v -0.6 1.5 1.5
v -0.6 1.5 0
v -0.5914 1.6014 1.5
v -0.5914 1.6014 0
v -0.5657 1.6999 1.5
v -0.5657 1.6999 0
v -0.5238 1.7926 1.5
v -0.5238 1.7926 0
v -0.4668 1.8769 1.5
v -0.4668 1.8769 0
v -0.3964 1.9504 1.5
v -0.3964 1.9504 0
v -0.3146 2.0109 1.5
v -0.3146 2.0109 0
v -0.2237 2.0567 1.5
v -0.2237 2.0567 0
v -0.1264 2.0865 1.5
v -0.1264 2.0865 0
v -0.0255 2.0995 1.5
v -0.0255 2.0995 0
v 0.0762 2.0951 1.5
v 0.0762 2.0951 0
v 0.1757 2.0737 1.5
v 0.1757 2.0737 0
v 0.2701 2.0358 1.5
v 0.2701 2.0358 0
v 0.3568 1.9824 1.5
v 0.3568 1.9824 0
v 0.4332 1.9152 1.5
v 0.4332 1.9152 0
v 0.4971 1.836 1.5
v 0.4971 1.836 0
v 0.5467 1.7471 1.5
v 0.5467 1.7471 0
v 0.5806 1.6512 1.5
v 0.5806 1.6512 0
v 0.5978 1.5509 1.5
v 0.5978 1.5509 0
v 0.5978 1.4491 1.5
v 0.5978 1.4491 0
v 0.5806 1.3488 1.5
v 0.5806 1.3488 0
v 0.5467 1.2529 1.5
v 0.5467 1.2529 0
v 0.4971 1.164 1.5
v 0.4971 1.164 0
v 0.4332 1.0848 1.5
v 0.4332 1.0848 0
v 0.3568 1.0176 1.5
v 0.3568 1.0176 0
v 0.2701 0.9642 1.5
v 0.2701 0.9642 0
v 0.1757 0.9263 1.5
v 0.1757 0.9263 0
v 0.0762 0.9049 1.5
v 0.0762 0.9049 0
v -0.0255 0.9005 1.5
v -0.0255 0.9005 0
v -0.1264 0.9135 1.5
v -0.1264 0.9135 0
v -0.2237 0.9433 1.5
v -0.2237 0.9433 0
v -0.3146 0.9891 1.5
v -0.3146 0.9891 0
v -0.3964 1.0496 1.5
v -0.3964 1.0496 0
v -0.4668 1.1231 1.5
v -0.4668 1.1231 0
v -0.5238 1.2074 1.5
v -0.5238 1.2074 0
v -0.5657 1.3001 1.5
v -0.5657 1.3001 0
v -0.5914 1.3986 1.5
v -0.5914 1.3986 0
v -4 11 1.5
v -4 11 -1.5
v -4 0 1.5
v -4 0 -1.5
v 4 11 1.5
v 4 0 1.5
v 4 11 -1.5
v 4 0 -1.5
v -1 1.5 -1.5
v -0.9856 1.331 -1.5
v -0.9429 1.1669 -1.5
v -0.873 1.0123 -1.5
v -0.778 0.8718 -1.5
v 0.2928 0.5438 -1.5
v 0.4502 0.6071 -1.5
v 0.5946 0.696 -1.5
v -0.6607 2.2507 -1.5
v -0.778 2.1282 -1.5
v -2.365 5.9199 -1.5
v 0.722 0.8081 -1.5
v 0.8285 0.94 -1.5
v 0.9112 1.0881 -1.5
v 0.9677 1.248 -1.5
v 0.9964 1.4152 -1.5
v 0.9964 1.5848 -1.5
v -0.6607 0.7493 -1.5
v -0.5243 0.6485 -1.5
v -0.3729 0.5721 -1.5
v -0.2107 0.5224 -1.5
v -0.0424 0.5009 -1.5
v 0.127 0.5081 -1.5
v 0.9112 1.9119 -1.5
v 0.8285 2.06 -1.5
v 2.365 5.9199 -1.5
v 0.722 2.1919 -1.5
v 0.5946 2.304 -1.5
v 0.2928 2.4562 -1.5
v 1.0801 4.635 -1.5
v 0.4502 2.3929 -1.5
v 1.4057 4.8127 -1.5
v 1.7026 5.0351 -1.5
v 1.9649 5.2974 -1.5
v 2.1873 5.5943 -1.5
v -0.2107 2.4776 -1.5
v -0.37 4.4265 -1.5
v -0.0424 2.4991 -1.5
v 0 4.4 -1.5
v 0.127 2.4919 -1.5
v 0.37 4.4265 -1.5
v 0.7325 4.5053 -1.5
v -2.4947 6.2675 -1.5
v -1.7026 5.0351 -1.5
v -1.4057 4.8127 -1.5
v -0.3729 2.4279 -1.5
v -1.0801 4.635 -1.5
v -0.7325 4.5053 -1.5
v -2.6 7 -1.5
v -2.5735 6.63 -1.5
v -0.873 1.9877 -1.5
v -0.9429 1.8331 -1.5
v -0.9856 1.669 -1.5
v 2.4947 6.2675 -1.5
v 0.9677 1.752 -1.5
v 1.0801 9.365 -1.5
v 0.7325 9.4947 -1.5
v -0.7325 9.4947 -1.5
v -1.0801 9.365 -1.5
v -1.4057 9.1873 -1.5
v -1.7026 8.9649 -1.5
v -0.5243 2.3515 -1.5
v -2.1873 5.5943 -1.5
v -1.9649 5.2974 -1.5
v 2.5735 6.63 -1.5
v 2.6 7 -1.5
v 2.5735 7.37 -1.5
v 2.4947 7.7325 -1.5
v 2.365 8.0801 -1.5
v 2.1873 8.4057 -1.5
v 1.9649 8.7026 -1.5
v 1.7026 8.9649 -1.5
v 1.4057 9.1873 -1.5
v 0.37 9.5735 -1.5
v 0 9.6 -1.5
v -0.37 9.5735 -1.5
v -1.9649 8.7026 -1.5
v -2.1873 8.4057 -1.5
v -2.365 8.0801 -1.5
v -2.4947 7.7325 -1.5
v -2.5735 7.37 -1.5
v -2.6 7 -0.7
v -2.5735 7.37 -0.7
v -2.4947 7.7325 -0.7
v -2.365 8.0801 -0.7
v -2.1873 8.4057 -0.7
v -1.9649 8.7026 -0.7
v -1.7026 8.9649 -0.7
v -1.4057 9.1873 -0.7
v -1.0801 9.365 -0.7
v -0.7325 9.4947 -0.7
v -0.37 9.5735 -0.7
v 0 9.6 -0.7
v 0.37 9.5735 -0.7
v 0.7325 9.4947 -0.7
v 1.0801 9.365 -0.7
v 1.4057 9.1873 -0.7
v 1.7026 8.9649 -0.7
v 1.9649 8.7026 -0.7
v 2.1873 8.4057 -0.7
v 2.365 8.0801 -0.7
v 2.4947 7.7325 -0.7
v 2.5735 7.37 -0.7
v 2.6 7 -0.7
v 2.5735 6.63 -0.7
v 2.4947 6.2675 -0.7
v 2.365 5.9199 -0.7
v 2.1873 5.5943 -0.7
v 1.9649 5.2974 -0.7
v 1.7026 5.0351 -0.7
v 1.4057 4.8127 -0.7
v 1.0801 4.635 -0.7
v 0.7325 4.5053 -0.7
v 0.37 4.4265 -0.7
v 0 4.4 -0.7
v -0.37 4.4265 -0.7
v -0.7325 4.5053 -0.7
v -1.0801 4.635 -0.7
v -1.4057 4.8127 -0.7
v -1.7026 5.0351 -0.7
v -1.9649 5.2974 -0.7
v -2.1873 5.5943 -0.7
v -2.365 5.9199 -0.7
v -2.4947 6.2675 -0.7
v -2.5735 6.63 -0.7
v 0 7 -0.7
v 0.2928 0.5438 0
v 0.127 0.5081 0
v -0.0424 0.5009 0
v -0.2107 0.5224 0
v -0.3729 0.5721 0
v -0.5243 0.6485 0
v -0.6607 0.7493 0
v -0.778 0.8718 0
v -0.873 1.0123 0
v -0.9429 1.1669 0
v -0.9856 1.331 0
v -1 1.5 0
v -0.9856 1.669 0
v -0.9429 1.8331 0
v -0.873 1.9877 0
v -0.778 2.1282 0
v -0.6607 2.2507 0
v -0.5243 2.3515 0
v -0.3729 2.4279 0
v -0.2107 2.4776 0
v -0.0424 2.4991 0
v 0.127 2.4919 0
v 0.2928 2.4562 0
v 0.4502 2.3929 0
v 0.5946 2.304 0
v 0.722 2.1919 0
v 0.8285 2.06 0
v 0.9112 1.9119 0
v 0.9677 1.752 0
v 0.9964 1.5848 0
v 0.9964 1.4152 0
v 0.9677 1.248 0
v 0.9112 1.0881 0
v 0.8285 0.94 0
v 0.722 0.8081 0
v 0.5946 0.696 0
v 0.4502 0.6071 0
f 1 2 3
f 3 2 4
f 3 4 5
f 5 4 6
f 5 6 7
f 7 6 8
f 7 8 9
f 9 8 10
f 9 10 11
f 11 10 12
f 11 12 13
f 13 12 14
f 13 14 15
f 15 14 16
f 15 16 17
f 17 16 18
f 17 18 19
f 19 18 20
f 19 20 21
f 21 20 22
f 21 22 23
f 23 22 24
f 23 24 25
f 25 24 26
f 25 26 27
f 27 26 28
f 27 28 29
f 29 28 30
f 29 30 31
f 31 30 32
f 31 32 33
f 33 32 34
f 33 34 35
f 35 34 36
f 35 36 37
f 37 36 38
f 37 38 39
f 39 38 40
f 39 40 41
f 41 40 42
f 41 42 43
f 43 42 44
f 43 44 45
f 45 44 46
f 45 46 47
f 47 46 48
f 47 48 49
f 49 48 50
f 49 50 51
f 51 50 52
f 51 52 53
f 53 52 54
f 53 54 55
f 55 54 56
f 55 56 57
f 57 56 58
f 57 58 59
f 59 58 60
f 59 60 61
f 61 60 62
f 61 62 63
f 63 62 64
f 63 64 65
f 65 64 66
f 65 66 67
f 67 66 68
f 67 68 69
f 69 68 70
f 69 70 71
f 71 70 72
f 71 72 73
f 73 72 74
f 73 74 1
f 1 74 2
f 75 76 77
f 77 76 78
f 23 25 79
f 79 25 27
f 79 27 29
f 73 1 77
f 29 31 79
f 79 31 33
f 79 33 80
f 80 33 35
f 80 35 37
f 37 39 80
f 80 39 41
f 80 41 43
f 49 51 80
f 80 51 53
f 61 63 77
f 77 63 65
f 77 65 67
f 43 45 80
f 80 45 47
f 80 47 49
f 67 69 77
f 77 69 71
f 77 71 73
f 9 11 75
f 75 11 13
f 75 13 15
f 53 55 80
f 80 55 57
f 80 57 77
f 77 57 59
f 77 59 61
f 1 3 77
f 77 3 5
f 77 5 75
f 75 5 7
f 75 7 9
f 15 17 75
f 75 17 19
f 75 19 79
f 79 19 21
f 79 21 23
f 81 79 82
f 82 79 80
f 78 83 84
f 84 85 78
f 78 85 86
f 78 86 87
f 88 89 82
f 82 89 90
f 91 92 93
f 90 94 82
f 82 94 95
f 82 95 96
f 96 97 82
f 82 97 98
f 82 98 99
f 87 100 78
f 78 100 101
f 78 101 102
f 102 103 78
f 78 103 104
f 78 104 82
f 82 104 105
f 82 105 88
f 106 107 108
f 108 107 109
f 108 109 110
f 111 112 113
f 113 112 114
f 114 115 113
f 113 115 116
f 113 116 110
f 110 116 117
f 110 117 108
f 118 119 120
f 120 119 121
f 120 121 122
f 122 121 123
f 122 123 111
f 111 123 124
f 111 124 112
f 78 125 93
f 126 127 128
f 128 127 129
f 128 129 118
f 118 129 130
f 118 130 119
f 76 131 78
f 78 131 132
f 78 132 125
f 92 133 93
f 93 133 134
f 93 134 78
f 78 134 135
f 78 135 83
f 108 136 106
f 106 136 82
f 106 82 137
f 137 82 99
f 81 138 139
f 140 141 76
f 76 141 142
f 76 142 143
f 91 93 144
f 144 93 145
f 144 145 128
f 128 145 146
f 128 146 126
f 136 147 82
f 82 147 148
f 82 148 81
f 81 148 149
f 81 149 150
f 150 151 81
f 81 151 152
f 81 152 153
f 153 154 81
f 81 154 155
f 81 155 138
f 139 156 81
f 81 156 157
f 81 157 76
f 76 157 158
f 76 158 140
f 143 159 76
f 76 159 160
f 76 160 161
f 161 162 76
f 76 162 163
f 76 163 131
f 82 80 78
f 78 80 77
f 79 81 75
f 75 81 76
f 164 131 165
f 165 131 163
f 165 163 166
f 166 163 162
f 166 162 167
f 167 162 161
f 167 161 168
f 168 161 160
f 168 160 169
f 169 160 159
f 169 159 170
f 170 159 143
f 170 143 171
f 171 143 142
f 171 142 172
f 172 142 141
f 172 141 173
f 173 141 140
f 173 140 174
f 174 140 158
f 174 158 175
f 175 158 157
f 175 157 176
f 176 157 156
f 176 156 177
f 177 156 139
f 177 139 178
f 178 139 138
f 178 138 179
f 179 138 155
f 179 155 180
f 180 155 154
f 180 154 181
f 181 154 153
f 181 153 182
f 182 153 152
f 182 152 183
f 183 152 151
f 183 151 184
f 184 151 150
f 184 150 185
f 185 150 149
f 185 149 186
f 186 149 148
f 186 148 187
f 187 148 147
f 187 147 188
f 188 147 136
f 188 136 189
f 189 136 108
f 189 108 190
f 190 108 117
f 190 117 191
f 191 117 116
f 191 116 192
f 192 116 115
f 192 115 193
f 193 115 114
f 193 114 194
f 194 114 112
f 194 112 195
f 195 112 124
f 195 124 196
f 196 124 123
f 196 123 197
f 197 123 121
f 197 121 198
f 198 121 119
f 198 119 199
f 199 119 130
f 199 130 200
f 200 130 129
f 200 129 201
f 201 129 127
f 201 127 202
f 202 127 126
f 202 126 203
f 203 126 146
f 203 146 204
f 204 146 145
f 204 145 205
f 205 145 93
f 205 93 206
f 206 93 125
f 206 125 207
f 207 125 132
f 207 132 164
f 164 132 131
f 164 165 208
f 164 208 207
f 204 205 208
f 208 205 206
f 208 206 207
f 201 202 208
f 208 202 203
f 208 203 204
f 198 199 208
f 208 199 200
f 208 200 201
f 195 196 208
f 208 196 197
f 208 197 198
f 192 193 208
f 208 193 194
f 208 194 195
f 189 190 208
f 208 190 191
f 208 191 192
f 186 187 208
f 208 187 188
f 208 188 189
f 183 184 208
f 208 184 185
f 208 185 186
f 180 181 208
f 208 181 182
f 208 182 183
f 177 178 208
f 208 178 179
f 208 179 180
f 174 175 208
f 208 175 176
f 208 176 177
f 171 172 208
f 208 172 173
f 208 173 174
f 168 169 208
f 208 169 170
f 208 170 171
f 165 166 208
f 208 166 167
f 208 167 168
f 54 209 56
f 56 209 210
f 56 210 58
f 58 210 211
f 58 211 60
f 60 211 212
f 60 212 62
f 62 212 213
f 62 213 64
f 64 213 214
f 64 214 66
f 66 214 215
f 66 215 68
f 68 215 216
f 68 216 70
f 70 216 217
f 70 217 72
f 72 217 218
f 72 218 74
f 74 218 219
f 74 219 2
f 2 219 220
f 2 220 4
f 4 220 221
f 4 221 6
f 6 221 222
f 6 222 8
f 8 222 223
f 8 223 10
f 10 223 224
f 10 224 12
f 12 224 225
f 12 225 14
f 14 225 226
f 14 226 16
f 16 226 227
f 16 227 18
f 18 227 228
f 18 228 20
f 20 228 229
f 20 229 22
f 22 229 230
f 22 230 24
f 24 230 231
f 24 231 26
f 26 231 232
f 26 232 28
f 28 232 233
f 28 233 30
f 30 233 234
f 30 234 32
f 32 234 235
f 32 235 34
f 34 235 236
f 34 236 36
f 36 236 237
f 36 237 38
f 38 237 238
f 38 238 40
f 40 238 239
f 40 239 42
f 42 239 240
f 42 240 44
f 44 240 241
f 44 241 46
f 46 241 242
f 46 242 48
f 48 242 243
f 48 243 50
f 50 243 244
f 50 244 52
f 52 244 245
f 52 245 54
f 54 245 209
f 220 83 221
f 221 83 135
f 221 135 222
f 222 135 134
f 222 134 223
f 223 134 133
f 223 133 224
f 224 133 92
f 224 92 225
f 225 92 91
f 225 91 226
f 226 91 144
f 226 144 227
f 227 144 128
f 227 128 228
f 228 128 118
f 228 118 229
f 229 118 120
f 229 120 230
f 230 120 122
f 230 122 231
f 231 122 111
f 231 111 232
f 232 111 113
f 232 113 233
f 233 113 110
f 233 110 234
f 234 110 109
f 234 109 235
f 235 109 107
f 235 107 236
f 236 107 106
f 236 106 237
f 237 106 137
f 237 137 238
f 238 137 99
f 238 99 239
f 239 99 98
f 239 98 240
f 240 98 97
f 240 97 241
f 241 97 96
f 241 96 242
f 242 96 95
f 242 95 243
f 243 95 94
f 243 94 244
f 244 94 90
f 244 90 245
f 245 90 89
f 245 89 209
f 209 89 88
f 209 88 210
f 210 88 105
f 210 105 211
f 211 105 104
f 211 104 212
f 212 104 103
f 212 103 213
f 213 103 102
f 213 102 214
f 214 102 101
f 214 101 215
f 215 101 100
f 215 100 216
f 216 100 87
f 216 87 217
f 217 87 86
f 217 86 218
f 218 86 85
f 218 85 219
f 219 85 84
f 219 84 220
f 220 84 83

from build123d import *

# Parameters (mm, degrees)
SKETCH_1_W          = 8
SKETCH_1_H          = 3
EXTRUDE_1_DEPTH     = 3
SKETCH_2_W          = 8
SKETCH_2_H          = 8
EXTRUDE_2_DEPTH     = 3
SKETCH_2_3_R        = 2.6
CUT_EXTRUDE_1_DEPTH = 0.8
SKETCH_3_R          = 0.6
CUT_EXTRUDE_2_DEPTH = 13.083045974
SKETCH_3_3_R        = 1
CUT_EXTRUDE_3_DEPTH = 1.5


with BuildPart() as part:
    # 草图1 → 凸台-拉伸1 (new body)
    with BuildSketch(Plane(origin=(0, 0, 0), x_dir=(1, 0, 0), z_dir=(0, 1, 0))):
        Rectangle(SKETCH_1_W, SKETCH_1_H)
    extrude(amount=EXTRUDE_1_DEPTH)

    # 草图2 → 凸台-拉伸2 (add)
    with BuildSketch(Plane(origin=(0, 0, -1.5), x_dir=(-1, 0, 0), z_dir=(0, 0, -1))):
        with Locations((0, 7)):
            Rectangle(SKETCH_2_W, SKETCH_2_H)
    extrude(amount=-EXTRUDE_2_DEPTH)

    # 草图2<3> → 切除-拉伸1 (cut)
    with BuildSketch(Plane(origin=(0, 0, -1.5), x_dir=(-1, 0, 0), z_dir=(0, 0, -1))):
        with Locations((0, 7)):
            Circle(SKETCH_2_3_R)
    extrude(amount=-CUT_EXTRUDE_1_DEPTH, mode=Mode.SUBTRACT)

    # 草图3 → 切除-拉伸2 (cut, through all)
    with BuildSketch(Plane(origin=(0, 0, -1.5), x_dir=(-1, 0, 0), z_dir=(0, 0, -1))):
        with Locations((0, 1.5)):
            Circle(SKETCH_3_R)
    extrude(amount=-CUT_EXTRUDE_2_DEPTH, mode=Mode.SUBTRACT)

    # 草图3<3> → 切除-拉伸3 (cut)
    with BuildSketch(Plane(origin=(0, 0, -1.5), x_dir=(-1, 0, 0), z_dir=(0, 0, -1))):
        with Locations((0, 1.5)):
            Circle(SKETCH_3_3_R)
    extrude(amount=-CUT_EXTRUDE_3_DEPTH, mode=Mode.SUBTRACT)


solid = part.part
